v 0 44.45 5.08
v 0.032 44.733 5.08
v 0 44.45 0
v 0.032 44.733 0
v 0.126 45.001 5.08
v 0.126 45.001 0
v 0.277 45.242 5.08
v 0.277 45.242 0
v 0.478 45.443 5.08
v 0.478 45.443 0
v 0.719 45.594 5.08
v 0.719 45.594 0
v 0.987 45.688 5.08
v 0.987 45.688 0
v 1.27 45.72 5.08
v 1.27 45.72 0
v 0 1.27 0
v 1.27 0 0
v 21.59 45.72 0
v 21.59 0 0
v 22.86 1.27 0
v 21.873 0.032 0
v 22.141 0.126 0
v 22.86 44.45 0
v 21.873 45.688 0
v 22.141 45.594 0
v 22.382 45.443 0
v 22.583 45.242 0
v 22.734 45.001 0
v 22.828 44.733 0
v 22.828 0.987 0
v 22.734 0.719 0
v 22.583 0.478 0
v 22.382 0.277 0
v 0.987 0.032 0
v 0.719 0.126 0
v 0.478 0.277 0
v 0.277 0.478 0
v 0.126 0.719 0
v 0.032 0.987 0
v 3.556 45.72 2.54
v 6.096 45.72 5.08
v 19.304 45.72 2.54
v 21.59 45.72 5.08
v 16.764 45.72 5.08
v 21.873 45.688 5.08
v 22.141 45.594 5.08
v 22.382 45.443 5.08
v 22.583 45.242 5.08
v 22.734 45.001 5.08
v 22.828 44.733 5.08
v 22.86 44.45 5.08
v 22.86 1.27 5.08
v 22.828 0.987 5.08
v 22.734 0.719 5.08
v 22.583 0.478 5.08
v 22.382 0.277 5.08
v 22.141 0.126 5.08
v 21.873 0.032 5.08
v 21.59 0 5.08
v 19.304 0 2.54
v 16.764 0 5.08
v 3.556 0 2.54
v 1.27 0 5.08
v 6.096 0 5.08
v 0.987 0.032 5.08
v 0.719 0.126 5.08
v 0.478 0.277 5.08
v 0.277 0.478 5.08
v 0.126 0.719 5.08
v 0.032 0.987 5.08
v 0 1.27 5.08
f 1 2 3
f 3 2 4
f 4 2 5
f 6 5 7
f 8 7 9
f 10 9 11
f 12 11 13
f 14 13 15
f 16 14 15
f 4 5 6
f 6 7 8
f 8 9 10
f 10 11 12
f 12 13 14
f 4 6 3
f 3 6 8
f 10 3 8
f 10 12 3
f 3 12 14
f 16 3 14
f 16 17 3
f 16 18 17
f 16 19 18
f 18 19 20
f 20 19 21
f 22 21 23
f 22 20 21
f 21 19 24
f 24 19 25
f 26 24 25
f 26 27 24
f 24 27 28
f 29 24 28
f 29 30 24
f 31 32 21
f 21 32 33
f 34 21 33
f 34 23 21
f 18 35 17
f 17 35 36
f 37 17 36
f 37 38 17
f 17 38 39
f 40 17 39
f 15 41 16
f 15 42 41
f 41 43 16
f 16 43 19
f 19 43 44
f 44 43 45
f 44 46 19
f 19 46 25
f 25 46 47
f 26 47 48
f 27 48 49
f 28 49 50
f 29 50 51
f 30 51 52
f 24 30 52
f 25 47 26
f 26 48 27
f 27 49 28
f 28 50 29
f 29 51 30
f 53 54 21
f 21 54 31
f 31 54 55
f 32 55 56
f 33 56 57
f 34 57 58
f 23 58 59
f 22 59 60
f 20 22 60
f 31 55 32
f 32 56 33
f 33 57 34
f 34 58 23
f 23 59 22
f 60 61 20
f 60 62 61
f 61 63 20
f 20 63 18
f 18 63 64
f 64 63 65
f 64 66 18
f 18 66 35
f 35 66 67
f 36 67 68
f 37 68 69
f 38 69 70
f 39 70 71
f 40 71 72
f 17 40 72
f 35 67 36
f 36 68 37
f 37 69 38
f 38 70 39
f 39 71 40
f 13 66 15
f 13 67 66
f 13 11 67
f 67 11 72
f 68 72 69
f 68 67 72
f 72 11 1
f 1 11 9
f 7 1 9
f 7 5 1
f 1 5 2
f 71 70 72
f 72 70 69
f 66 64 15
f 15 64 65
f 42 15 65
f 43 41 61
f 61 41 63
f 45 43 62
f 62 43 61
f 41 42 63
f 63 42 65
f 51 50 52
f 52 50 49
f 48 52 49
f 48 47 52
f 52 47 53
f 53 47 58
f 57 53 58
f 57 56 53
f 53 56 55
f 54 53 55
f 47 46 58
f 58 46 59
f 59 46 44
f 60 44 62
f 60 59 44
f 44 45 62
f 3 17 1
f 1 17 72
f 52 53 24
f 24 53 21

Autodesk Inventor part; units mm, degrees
ref_plane "YZ Plane" through (0, 0, 0) normal (1, 0, 0) x (0, 1, 0)
ref_plane "XZ Plane" through (0, 0, 0) normal (0, 1, 0) x (-1, 0, 0)
ref_plane "XY Plane" through (0, 0, 0) normal (0, 0, 1) x (1, 0, 0)
sketch "Sketch1" plane through (0, 0, 0) normal (0, 0, 1) x (1, 0, 0)
  line L0 (0, 0) -> (22.86, 0)
  line L1 (22.86, 0) -> (22.86, 45.72)
  line L2 (22.86, 45.72) -> (0, 45.72)
  line L3 (0, 45.72) -> (0, 0)
  dimension "d0" = 22.86
  dimension "d1" = 45.72
extrude "Extrusion1" add sketch "Sketch1" along normal blind 5.08
sketch "Sketch2" plane through (0, 0, 0) normal (0, -1, 0) x (1, 0, 0)
  line L0 (0, 5.08) -> (22.86, 5.08) projected
  line L1 (6.096, 5.08) -> (3.556, 2.54)
  line L2 (3.556, 2.54) -> (19.304, 2.54)
  line L3 (19.304, 2.54) -> (16.764, 5.08)
  line L4 (6.096, 5.08) -> (16.764, 5.08)
  line L5 (0, 0) -> (0, 5.08) projected
  line L6 (0, 0) -> (22.86, 0) projected
  dimension "d4" = 45
  dimension "d5" = 45
  dimension "d6" = 10.668
  dimension "d7" = 3.556
  dimension "d8" = 2.54
  dimension "d12" = 2.54
extrude "Extrusion2" cut sketch "Sketch2" against normal blind 50.8
fillet "Fillet1" radius 1.27 4 edges at (0, 0, 2.54) (22.86, 0, 2.54) (22.86, 45.72, 2.54) (0, 45.72, 2.54)
properties part number "nano_enclosure_modular_sidelock"
